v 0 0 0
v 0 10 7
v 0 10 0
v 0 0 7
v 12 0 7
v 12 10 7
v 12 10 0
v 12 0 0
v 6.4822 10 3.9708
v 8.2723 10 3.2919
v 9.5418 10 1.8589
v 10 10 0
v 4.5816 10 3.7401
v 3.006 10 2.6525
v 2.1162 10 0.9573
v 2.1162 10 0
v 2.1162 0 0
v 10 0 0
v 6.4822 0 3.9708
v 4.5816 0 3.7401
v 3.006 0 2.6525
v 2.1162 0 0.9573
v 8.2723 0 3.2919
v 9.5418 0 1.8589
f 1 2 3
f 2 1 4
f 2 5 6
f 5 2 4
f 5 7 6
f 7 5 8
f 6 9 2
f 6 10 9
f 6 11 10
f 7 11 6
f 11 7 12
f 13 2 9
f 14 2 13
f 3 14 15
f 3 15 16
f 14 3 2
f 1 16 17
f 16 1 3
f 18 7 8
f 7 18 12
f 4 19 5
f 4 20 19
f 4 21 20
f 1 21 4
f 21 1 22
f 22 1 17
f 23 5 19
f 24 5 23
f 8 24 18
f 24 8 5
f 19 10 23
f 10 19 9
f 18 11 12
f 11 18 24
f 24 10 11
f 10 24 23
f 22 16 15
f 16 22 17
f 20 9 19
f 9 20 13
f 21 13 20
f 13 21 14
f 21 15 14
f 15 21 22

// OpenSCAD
cylinder_diameter = 8;
min_height = 3;
thickness = 2;
cylinder_length = 10;

difference() {
    cube([cylinder_diameter+2*thickness, cylinder_length, cylinder_diameter/2 + min_height]);
    translate([cylinder_diameter/2+thickness, 0, 0]) rotate([-90,0,0]) cylinder(h=cylinder_length, d=cylinder_diameter);
}
